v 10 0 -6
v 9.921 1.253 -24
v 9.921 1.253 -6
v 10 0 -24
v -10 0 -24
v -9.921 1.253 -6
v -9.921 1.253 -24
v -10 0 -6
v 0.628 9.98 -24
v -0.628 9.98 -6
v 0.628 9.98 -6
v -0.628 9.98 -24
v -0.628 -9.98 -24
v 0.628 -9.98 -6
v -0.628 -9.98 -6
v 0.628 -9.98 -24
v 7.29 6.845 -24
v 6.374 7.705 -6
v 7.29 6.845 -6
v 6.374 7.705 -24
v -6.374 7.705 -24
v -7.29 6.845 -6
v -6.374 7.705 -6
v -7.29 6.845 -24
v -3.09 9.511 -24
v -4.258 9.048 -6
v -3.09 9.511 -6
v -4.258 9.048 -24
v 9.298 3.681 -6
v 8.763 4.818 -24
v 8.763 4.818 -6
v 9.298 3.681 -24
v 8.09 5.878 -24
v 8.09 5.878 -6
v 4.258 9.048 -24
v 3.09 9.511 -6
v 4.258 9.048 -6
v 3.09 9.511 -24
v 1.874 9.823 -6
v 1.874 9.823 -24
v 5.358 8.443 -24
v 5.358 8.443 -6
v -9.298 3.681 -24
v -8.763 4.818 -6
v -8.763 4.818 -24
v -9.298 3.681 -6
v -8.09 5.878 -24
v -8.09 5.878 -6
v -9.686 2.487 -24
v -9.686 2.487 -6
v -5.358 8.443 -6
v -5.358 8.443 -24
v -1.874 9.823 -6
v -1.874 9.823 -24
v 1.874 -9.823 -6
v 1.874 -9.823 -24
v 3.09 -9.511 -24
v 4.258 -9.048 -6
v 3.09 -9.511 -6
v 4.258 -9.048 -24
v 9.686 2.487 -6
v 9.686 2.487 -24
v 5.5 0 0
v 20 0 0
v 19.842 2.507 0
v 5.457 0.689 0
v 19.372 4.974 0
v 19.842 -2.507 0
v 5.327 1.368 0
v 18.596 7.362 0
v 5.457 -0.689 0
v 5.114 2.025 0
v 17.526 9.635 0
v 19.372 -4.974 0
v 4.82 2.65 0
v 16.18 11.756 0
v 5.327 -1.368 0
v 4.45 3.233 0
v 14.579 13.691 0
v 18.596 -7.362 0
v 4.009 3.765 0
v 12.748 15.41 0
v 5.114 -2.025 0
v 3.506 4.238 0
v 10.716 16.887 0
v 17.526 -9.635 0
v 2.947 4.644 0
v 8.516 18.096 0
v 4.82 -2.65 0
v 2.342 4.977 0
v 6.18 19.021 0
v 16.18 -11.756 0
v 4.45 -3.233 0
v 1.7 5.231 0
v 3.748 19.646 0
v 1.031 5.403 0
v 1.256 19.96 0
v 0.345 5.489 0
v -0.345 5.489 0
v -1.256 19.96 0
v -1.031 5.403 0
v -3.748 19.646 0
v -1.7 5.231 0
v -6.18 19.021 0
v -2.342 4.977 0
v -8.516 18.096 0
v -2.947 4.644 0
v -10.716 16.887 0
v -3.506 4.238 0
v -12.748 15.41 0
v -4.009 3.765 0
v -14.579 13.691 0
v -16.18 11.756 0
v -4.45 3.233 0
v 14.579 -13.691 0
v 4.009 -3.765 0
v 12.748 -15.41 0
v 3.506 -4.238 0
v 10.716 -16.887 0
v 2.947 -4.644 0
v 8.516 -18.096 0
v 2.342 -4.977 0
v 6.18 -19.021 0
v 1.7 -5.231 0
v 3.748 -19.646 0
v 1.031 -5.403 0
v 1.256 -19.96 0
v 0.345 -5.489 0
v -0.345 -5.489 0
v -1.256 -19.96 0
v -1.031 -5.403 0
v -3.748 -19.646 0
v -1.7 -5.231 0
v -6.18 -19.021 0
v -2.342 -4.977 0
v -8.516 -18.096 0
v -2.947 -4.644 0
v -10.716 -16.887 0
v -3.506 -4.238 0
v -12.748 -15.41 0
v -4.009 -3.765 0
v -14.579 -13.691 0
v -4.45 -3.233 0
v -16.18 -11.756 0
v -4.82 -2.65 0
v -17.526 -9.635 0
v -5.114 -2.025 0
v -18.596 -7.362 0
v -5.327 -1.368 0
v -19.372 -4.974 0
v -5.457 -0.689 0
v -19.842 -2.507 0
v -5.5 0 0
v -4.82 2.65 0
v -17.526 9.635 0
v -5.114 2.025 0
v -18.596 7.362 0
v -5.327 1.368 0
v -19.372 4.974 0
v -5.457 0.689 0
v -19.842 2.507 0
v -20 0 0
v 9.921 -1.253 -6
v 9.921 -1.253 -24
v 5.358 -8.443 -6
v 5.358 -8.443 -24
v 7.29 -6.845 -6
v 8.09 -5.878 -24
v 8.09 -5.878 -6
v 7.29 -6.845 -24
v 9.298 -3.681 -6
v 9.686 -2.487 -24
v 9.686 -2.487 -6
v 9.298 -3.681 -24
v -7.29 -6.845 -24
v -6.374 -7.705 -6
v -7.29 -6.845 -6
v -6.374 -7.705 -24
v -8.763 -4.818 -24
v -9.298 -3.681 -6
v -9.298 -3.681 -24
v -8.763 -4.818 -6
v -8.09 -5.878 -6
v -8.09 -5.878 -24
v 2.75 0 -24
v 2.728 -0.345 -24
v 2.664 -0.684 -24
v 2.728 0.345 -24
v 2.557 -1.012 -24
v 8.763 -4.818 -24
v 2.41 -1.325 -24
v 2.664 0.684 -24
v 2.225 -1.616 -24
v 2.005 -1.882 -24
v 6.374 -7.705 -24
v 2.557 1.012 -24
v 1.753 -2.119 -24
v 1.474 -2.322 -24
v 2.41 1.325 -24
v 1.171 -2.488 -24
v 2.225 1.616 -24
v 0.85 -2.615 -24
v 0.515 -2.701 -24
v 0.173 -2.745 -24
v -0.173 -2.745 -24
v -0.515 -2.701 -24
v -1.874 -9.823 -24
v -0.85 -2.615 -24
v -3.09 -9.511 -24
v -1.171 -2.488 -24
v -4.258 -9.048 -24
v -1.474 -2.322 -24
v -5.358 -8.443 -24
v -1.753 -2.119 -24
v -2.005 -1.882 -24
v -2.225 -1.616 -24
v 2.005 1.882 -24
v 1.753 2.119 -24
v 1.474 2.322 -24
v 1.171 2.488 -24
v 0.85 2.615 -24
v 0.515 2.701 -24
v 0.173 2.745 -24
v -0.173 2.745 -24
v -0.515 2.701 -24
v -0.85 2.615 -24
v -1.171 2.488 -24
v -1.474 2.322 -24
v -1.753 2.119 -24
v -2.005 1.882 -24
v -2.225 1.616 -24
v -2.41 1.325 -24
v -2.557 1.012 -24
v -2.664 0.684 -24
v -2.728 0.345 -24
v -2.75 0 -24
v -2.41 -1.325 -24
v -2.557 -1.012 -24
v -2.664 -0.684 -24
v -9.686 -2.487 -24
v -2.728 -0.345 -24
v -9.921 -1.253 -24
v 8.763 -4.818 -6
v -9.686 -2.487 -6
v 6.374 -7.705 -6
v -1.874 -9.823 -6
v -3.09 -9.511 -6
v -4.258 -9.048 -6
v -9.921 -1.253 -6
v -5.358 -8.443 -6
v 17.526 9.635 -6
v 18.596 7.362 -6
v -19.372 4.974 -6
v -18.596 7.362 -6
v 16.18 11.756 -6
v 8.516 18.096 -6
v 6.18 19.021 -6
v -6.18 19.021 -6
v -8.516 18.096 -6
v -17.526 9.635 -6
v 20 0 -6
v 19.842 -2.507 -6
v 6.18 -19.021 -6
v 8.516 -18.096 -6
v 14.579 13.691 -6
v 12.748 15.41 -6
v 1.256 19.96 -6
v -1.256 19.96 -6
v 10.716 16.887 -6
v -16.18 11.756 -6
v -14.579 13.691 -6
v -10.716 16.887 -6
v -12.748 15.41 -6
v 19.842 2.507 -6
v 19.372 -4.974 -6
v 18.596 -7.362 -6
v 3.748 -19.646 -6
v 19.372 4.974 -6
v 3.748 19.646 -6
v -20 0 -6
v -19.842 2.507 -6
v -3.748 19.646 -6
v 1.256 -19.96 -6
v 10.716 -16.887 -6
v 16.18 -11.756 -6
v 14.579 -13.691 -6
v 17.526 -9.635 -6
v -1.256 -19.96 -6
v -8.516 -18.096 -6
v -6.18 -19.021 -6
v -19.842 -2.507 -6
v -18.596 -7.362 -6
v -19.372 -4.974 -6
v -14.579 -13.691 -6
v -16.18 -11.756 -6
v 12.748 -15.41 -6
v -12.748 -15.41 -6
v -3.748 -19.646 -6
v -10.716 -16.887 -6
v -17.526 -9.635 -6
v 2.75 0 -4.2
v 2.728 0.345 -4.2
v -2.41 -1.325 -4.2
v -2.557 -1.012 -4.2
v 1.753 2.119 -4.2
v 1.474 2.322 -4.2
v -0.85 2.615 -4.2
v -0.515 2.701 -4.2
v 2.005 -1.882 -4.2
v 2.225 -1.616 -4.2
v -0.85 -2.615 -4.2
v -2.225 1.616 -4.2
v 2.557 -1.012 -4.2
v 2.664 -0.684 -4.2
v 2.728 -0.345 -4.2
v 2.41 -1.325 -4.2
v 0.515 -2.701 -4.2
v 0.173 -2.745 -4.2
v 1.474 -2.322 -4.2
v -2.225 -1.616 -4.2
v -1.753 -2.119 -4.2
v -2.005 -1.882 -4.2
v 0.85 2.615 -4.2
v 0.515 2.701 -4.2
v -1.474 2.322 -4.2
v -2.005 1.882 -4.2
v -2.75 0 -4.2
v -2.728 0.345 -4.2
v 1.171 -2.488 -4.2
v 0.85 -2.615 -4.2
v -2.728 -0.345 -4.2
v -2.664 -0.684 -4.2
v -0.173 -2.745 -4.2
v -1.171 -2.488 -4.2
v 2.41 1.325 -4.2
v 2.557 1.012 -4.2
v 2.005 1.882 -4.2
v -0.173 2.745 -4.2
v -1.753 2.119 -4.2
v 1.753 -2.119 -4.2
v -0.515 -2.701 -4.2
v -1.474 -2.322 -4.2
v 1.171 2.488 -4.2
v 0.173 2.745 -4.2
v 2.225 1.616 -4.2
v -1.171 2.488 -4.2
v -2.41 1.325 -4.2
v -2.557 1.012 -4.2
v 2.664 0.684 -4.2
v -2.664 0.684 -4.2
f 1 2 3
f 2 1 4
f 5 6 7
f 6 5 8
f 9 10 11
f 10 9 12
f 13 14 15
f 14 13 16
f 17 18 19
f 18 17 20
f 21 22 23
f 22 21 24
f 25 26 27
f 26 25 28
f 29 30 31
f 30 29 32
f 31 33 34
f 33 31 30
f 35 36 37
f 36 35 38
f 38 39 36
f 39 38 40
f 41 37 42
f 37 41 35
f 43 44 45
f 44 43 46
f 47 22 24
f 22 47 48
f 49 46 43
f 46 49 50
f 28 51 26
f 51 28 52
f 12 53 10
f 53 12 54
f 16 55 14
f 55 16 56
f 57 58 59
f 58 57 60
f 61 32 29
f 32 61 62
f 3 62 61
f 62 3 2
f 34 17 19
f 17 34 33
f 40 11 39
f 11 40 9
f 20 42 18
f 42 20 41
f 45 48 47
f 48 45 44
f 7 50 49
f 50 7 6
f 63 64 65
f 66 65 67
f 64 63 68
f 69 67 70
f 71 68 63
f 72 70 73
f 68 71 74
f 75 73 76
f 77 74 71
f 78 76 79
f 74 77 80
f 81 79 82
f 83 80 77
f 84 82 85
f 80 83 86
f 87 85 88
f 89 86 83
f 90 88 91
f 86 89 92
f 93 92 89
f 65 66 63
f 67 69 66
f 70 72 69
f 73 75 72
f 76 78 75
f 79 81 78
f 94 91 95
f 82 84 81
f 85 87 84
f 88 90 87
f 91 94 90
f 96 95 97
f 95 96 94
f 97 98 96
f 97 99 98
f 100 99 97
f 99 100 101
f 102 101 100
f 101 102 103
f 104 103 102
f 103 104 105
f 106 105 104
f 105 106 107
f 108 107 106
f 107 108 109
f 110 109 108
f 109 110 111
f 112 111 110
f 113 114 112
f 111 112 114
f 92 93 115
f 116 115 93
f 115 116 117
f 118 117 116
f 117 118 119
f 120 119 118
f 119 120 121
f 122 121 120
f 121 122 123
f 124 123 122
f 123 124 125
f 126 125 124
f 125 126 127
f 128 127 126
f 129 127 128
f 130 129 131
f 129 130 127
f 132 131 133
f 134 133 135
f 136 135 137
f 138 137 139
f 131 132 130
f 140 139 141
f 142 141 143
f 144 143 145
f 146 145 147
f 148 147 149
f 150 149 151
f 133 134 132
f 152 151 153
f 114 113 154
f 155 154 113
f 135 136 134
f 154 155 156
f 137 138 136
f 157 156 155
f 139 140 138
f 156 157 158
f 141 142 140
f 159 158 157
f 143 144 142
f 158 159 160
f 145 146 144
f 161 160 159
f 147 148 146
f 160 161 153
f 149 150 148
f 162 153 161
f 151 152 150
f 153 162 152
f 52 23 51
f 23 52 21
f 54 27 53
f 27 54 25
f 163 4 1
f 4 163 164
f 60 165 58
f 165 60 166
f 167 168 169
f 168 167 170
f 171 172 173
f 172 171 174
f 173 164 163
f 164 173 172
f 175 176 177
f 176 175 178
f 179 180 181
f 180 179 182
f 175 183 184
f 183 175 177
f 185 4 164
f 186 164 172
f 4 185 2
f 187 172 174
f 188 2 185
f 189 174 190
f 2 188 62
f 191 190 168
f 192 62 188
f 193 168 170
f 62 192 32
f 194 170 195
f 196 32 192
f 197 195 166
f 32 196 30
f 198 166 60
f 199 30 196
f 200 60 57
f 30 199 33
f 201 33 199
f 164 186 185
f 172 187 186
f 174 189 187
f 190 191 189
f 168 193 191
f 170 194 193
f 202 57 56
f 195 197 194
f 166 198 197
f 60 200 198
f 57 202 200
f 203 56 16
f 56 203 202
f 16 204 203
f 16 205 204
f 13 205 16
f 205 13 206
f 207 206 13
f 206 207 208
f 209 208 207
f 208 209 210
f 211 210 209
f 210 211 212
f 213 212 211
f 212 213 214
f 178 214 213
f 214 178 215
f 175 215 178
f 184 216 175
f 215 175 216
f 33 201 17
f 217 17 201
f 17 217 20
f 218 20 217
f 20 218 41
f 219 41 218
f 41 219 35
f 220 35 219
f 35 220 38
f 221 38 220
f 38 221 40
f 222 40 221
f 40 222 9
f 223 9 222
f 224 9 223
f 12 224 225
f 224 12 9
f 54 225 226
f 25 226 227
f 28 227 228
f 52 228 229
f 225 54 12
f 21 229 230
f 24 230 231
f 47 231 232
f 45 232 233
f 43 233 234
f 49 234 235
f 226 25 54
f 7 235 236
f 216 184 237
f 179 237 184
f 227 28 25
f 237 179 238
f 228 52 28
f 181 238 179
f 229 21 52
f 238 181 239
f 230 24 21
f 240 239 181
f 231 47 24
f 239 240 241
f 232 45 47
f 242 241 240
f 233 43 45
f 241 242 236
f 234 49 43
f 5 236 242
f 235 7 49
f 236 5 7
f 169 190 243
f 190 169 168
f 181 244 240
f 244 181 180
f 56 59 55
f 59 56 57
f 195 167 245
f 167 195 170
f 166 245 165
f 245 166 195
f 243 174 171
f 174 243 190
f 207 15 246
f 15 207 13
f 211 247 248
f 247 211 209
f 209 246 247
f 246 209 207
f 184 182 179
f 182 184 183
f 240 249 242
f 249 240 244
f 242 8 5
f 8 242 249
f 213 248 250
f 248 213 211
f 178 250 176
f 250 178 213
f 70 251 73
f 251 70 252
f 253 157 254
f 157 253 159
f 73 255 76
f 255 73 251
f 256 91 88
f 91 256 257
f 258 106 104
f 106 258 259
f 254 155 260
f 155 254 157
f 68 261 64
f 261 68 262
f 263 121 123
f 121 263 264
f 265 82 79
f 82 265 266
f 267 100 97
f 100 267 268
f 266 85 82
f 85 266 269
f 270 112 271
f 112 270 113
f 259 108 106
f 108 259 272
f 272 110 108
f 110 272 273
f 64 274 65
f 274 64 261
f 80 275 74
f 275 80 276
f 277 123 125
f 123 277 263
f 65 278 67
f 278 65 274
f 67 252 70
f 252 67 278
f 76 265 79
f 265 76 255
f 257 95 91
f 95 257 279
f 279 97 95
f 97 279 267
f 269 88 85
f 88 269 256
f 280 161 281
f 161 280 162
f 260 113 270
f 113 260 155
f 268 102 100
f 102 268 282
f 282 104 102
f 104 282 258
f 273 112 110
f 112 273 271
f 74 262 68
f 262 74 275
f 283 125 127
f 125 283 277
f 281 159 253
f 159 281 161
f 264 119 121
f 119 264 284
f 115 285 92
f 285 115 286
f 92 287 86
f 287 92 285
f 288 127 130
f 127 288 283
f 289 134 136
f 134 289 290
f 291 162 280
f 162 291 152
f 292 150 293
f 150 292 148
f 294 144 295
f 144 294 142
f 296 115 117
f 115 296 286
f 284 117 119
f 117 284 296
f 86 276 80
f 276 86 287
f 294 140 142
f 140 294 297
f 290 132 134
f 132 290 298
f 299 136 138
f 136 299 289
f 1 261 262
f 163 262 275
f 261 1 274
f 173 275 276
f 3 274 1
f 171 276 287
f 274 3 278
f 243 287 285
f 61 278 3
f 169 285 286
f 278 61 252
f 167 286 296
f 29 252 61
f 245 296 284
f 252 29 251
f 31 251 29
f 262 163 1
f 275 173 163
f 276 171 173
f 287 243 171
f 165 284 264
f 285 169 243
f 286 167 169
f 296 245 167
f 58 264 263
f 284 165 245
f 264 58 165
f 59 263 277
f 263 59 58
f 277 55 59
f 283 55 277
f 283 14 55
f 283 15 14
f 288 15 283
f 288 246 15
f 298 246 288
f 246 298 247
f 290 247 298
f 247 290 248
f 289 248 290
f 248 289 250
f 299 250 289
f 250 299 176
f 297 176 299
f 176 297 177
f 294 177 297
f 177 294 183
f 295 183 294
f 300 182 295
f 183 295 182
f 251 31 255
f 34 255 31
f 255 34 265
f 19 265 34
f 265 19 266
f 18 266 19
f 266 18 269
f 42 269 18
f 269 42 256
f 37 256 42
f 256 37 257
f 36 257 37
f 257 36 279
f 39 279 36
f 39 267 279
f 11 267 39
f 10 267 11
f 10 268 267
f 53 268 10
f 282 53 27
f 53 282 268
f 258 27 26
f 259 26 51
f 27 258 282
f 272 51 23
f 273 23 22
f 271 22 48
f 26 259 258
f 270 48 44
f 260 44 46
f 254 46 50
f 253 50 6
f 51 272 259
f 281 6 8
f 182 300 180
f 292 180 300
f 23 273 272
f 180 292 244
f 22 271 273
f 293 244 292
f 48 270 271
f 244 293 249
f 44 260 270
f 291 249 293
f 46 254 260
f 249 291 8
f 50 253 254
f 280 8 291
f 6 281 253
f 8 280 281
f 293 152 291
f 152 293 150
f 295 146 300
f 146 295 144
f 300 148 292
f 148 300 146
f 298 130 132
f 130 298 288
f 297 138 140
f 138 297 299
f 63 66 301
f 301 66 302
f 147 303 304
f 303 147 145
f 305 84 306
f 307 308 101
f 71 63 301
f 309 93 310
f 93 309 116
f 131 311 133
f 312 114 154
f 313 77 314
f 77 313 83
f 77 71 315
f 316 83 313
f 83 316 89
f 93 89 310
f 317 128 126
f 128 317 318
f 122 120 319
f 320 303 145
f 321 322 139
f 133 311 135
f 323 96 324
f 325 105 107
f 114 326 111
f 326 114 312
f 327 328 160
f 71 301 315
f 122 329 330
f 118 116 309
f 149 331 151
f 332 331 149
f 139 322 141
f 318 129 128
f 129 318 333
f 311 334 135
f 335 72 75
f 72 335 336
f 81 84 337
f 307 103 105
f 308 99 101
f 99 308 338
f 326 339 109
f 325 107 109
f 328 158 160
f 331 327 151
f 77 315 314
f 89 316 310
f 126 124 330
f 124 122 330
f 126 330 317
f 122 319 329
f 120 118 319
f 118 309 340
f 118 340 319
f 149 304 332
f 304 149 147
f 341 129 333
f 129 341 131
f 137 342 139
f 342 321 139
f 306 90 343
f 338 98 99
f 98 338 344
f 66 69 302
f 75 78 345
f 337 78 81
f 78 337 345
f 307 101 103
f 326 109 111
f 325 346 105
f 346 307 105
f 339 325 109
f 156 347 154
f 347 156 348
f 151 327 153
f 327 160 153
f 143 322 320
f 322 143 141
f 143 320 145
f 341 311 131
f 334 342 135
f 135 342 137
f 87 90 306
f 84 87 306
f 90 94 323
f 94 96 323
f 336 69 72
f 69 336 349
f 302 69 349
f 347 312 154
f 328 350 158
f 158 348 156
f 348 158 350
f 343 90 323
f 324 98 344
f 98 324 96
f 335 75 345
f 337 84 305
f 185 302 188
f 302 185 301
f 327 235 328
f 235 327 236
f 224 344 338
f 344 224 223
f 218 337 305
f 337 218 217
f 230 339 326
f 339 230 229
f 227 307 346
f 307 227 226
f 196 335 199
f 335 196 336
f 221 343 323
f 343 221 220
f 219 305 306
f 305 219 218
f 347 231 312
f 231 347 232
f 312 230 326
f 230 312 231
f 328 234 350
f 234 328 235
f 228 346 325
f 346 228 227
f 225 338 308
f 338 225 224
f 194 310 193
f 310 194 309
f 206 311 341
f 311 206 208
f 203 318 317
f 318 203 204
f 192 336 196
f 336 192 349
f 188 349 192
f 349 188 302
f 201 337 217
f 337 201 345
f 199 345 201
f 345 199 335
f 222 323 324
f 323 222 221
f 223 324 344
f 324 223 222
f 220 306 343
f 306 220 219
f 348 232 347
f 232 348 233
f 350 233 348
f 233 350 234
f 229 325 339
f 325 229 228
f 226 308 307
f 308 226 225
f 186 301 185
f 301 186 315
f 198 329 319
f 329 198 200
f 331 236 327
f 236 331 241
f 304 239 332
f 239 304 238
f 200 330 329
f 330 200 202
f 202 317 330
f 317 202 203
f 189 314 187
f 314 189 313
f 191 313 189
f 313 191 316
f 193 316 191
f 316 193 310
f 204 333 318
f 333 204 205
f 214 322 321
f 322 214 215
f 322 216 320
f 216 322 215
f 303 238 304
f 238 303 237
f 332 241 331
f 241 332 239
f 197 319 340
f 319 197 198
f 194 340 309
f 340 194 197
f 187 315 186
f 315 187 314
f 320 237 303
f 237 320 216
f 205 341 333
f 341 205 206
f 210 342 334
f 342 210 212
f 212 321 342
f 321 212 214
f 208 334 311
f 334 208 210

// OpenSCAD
$fn = 50;


difference() {
	union() {
		translate(v = [0, 0, -24.0000000000]) {
			cylinder(h = 24, r = 10.0000000000);
		}
		translate(v = [0, 0, -6.0000000000]) {
			cylinder(h = 6, r = 20.0000000000);
		}
	}
	union() {
		translate(v = [0, 0, 0]) {
			rotate(a = [0, 0, 0]) {
				difference() {
					union() {
						#translate(v = [0, 0, -24.0000000000]) {
							cylinder(h = 24, r = 2.2500000000);
						}
						#translate(v = [0, 0, -4.2000000000]) {
							cylinder(h = 4.2000000000, r = 10.0000000000, r1 = 2.7500000000, r2 = 5.5000000000);
						}
						#translate(v = [0, 0, -24.0000000000]) {
							cylinder(h = 24, r = 2.7500000000);
						}
						#translate(v = [0, 0, -24.0000000000]) {
							cylinder(h = 24, r = 2.2500000000);
						}
					}
					union();
				}
			}
		}
	}
}
